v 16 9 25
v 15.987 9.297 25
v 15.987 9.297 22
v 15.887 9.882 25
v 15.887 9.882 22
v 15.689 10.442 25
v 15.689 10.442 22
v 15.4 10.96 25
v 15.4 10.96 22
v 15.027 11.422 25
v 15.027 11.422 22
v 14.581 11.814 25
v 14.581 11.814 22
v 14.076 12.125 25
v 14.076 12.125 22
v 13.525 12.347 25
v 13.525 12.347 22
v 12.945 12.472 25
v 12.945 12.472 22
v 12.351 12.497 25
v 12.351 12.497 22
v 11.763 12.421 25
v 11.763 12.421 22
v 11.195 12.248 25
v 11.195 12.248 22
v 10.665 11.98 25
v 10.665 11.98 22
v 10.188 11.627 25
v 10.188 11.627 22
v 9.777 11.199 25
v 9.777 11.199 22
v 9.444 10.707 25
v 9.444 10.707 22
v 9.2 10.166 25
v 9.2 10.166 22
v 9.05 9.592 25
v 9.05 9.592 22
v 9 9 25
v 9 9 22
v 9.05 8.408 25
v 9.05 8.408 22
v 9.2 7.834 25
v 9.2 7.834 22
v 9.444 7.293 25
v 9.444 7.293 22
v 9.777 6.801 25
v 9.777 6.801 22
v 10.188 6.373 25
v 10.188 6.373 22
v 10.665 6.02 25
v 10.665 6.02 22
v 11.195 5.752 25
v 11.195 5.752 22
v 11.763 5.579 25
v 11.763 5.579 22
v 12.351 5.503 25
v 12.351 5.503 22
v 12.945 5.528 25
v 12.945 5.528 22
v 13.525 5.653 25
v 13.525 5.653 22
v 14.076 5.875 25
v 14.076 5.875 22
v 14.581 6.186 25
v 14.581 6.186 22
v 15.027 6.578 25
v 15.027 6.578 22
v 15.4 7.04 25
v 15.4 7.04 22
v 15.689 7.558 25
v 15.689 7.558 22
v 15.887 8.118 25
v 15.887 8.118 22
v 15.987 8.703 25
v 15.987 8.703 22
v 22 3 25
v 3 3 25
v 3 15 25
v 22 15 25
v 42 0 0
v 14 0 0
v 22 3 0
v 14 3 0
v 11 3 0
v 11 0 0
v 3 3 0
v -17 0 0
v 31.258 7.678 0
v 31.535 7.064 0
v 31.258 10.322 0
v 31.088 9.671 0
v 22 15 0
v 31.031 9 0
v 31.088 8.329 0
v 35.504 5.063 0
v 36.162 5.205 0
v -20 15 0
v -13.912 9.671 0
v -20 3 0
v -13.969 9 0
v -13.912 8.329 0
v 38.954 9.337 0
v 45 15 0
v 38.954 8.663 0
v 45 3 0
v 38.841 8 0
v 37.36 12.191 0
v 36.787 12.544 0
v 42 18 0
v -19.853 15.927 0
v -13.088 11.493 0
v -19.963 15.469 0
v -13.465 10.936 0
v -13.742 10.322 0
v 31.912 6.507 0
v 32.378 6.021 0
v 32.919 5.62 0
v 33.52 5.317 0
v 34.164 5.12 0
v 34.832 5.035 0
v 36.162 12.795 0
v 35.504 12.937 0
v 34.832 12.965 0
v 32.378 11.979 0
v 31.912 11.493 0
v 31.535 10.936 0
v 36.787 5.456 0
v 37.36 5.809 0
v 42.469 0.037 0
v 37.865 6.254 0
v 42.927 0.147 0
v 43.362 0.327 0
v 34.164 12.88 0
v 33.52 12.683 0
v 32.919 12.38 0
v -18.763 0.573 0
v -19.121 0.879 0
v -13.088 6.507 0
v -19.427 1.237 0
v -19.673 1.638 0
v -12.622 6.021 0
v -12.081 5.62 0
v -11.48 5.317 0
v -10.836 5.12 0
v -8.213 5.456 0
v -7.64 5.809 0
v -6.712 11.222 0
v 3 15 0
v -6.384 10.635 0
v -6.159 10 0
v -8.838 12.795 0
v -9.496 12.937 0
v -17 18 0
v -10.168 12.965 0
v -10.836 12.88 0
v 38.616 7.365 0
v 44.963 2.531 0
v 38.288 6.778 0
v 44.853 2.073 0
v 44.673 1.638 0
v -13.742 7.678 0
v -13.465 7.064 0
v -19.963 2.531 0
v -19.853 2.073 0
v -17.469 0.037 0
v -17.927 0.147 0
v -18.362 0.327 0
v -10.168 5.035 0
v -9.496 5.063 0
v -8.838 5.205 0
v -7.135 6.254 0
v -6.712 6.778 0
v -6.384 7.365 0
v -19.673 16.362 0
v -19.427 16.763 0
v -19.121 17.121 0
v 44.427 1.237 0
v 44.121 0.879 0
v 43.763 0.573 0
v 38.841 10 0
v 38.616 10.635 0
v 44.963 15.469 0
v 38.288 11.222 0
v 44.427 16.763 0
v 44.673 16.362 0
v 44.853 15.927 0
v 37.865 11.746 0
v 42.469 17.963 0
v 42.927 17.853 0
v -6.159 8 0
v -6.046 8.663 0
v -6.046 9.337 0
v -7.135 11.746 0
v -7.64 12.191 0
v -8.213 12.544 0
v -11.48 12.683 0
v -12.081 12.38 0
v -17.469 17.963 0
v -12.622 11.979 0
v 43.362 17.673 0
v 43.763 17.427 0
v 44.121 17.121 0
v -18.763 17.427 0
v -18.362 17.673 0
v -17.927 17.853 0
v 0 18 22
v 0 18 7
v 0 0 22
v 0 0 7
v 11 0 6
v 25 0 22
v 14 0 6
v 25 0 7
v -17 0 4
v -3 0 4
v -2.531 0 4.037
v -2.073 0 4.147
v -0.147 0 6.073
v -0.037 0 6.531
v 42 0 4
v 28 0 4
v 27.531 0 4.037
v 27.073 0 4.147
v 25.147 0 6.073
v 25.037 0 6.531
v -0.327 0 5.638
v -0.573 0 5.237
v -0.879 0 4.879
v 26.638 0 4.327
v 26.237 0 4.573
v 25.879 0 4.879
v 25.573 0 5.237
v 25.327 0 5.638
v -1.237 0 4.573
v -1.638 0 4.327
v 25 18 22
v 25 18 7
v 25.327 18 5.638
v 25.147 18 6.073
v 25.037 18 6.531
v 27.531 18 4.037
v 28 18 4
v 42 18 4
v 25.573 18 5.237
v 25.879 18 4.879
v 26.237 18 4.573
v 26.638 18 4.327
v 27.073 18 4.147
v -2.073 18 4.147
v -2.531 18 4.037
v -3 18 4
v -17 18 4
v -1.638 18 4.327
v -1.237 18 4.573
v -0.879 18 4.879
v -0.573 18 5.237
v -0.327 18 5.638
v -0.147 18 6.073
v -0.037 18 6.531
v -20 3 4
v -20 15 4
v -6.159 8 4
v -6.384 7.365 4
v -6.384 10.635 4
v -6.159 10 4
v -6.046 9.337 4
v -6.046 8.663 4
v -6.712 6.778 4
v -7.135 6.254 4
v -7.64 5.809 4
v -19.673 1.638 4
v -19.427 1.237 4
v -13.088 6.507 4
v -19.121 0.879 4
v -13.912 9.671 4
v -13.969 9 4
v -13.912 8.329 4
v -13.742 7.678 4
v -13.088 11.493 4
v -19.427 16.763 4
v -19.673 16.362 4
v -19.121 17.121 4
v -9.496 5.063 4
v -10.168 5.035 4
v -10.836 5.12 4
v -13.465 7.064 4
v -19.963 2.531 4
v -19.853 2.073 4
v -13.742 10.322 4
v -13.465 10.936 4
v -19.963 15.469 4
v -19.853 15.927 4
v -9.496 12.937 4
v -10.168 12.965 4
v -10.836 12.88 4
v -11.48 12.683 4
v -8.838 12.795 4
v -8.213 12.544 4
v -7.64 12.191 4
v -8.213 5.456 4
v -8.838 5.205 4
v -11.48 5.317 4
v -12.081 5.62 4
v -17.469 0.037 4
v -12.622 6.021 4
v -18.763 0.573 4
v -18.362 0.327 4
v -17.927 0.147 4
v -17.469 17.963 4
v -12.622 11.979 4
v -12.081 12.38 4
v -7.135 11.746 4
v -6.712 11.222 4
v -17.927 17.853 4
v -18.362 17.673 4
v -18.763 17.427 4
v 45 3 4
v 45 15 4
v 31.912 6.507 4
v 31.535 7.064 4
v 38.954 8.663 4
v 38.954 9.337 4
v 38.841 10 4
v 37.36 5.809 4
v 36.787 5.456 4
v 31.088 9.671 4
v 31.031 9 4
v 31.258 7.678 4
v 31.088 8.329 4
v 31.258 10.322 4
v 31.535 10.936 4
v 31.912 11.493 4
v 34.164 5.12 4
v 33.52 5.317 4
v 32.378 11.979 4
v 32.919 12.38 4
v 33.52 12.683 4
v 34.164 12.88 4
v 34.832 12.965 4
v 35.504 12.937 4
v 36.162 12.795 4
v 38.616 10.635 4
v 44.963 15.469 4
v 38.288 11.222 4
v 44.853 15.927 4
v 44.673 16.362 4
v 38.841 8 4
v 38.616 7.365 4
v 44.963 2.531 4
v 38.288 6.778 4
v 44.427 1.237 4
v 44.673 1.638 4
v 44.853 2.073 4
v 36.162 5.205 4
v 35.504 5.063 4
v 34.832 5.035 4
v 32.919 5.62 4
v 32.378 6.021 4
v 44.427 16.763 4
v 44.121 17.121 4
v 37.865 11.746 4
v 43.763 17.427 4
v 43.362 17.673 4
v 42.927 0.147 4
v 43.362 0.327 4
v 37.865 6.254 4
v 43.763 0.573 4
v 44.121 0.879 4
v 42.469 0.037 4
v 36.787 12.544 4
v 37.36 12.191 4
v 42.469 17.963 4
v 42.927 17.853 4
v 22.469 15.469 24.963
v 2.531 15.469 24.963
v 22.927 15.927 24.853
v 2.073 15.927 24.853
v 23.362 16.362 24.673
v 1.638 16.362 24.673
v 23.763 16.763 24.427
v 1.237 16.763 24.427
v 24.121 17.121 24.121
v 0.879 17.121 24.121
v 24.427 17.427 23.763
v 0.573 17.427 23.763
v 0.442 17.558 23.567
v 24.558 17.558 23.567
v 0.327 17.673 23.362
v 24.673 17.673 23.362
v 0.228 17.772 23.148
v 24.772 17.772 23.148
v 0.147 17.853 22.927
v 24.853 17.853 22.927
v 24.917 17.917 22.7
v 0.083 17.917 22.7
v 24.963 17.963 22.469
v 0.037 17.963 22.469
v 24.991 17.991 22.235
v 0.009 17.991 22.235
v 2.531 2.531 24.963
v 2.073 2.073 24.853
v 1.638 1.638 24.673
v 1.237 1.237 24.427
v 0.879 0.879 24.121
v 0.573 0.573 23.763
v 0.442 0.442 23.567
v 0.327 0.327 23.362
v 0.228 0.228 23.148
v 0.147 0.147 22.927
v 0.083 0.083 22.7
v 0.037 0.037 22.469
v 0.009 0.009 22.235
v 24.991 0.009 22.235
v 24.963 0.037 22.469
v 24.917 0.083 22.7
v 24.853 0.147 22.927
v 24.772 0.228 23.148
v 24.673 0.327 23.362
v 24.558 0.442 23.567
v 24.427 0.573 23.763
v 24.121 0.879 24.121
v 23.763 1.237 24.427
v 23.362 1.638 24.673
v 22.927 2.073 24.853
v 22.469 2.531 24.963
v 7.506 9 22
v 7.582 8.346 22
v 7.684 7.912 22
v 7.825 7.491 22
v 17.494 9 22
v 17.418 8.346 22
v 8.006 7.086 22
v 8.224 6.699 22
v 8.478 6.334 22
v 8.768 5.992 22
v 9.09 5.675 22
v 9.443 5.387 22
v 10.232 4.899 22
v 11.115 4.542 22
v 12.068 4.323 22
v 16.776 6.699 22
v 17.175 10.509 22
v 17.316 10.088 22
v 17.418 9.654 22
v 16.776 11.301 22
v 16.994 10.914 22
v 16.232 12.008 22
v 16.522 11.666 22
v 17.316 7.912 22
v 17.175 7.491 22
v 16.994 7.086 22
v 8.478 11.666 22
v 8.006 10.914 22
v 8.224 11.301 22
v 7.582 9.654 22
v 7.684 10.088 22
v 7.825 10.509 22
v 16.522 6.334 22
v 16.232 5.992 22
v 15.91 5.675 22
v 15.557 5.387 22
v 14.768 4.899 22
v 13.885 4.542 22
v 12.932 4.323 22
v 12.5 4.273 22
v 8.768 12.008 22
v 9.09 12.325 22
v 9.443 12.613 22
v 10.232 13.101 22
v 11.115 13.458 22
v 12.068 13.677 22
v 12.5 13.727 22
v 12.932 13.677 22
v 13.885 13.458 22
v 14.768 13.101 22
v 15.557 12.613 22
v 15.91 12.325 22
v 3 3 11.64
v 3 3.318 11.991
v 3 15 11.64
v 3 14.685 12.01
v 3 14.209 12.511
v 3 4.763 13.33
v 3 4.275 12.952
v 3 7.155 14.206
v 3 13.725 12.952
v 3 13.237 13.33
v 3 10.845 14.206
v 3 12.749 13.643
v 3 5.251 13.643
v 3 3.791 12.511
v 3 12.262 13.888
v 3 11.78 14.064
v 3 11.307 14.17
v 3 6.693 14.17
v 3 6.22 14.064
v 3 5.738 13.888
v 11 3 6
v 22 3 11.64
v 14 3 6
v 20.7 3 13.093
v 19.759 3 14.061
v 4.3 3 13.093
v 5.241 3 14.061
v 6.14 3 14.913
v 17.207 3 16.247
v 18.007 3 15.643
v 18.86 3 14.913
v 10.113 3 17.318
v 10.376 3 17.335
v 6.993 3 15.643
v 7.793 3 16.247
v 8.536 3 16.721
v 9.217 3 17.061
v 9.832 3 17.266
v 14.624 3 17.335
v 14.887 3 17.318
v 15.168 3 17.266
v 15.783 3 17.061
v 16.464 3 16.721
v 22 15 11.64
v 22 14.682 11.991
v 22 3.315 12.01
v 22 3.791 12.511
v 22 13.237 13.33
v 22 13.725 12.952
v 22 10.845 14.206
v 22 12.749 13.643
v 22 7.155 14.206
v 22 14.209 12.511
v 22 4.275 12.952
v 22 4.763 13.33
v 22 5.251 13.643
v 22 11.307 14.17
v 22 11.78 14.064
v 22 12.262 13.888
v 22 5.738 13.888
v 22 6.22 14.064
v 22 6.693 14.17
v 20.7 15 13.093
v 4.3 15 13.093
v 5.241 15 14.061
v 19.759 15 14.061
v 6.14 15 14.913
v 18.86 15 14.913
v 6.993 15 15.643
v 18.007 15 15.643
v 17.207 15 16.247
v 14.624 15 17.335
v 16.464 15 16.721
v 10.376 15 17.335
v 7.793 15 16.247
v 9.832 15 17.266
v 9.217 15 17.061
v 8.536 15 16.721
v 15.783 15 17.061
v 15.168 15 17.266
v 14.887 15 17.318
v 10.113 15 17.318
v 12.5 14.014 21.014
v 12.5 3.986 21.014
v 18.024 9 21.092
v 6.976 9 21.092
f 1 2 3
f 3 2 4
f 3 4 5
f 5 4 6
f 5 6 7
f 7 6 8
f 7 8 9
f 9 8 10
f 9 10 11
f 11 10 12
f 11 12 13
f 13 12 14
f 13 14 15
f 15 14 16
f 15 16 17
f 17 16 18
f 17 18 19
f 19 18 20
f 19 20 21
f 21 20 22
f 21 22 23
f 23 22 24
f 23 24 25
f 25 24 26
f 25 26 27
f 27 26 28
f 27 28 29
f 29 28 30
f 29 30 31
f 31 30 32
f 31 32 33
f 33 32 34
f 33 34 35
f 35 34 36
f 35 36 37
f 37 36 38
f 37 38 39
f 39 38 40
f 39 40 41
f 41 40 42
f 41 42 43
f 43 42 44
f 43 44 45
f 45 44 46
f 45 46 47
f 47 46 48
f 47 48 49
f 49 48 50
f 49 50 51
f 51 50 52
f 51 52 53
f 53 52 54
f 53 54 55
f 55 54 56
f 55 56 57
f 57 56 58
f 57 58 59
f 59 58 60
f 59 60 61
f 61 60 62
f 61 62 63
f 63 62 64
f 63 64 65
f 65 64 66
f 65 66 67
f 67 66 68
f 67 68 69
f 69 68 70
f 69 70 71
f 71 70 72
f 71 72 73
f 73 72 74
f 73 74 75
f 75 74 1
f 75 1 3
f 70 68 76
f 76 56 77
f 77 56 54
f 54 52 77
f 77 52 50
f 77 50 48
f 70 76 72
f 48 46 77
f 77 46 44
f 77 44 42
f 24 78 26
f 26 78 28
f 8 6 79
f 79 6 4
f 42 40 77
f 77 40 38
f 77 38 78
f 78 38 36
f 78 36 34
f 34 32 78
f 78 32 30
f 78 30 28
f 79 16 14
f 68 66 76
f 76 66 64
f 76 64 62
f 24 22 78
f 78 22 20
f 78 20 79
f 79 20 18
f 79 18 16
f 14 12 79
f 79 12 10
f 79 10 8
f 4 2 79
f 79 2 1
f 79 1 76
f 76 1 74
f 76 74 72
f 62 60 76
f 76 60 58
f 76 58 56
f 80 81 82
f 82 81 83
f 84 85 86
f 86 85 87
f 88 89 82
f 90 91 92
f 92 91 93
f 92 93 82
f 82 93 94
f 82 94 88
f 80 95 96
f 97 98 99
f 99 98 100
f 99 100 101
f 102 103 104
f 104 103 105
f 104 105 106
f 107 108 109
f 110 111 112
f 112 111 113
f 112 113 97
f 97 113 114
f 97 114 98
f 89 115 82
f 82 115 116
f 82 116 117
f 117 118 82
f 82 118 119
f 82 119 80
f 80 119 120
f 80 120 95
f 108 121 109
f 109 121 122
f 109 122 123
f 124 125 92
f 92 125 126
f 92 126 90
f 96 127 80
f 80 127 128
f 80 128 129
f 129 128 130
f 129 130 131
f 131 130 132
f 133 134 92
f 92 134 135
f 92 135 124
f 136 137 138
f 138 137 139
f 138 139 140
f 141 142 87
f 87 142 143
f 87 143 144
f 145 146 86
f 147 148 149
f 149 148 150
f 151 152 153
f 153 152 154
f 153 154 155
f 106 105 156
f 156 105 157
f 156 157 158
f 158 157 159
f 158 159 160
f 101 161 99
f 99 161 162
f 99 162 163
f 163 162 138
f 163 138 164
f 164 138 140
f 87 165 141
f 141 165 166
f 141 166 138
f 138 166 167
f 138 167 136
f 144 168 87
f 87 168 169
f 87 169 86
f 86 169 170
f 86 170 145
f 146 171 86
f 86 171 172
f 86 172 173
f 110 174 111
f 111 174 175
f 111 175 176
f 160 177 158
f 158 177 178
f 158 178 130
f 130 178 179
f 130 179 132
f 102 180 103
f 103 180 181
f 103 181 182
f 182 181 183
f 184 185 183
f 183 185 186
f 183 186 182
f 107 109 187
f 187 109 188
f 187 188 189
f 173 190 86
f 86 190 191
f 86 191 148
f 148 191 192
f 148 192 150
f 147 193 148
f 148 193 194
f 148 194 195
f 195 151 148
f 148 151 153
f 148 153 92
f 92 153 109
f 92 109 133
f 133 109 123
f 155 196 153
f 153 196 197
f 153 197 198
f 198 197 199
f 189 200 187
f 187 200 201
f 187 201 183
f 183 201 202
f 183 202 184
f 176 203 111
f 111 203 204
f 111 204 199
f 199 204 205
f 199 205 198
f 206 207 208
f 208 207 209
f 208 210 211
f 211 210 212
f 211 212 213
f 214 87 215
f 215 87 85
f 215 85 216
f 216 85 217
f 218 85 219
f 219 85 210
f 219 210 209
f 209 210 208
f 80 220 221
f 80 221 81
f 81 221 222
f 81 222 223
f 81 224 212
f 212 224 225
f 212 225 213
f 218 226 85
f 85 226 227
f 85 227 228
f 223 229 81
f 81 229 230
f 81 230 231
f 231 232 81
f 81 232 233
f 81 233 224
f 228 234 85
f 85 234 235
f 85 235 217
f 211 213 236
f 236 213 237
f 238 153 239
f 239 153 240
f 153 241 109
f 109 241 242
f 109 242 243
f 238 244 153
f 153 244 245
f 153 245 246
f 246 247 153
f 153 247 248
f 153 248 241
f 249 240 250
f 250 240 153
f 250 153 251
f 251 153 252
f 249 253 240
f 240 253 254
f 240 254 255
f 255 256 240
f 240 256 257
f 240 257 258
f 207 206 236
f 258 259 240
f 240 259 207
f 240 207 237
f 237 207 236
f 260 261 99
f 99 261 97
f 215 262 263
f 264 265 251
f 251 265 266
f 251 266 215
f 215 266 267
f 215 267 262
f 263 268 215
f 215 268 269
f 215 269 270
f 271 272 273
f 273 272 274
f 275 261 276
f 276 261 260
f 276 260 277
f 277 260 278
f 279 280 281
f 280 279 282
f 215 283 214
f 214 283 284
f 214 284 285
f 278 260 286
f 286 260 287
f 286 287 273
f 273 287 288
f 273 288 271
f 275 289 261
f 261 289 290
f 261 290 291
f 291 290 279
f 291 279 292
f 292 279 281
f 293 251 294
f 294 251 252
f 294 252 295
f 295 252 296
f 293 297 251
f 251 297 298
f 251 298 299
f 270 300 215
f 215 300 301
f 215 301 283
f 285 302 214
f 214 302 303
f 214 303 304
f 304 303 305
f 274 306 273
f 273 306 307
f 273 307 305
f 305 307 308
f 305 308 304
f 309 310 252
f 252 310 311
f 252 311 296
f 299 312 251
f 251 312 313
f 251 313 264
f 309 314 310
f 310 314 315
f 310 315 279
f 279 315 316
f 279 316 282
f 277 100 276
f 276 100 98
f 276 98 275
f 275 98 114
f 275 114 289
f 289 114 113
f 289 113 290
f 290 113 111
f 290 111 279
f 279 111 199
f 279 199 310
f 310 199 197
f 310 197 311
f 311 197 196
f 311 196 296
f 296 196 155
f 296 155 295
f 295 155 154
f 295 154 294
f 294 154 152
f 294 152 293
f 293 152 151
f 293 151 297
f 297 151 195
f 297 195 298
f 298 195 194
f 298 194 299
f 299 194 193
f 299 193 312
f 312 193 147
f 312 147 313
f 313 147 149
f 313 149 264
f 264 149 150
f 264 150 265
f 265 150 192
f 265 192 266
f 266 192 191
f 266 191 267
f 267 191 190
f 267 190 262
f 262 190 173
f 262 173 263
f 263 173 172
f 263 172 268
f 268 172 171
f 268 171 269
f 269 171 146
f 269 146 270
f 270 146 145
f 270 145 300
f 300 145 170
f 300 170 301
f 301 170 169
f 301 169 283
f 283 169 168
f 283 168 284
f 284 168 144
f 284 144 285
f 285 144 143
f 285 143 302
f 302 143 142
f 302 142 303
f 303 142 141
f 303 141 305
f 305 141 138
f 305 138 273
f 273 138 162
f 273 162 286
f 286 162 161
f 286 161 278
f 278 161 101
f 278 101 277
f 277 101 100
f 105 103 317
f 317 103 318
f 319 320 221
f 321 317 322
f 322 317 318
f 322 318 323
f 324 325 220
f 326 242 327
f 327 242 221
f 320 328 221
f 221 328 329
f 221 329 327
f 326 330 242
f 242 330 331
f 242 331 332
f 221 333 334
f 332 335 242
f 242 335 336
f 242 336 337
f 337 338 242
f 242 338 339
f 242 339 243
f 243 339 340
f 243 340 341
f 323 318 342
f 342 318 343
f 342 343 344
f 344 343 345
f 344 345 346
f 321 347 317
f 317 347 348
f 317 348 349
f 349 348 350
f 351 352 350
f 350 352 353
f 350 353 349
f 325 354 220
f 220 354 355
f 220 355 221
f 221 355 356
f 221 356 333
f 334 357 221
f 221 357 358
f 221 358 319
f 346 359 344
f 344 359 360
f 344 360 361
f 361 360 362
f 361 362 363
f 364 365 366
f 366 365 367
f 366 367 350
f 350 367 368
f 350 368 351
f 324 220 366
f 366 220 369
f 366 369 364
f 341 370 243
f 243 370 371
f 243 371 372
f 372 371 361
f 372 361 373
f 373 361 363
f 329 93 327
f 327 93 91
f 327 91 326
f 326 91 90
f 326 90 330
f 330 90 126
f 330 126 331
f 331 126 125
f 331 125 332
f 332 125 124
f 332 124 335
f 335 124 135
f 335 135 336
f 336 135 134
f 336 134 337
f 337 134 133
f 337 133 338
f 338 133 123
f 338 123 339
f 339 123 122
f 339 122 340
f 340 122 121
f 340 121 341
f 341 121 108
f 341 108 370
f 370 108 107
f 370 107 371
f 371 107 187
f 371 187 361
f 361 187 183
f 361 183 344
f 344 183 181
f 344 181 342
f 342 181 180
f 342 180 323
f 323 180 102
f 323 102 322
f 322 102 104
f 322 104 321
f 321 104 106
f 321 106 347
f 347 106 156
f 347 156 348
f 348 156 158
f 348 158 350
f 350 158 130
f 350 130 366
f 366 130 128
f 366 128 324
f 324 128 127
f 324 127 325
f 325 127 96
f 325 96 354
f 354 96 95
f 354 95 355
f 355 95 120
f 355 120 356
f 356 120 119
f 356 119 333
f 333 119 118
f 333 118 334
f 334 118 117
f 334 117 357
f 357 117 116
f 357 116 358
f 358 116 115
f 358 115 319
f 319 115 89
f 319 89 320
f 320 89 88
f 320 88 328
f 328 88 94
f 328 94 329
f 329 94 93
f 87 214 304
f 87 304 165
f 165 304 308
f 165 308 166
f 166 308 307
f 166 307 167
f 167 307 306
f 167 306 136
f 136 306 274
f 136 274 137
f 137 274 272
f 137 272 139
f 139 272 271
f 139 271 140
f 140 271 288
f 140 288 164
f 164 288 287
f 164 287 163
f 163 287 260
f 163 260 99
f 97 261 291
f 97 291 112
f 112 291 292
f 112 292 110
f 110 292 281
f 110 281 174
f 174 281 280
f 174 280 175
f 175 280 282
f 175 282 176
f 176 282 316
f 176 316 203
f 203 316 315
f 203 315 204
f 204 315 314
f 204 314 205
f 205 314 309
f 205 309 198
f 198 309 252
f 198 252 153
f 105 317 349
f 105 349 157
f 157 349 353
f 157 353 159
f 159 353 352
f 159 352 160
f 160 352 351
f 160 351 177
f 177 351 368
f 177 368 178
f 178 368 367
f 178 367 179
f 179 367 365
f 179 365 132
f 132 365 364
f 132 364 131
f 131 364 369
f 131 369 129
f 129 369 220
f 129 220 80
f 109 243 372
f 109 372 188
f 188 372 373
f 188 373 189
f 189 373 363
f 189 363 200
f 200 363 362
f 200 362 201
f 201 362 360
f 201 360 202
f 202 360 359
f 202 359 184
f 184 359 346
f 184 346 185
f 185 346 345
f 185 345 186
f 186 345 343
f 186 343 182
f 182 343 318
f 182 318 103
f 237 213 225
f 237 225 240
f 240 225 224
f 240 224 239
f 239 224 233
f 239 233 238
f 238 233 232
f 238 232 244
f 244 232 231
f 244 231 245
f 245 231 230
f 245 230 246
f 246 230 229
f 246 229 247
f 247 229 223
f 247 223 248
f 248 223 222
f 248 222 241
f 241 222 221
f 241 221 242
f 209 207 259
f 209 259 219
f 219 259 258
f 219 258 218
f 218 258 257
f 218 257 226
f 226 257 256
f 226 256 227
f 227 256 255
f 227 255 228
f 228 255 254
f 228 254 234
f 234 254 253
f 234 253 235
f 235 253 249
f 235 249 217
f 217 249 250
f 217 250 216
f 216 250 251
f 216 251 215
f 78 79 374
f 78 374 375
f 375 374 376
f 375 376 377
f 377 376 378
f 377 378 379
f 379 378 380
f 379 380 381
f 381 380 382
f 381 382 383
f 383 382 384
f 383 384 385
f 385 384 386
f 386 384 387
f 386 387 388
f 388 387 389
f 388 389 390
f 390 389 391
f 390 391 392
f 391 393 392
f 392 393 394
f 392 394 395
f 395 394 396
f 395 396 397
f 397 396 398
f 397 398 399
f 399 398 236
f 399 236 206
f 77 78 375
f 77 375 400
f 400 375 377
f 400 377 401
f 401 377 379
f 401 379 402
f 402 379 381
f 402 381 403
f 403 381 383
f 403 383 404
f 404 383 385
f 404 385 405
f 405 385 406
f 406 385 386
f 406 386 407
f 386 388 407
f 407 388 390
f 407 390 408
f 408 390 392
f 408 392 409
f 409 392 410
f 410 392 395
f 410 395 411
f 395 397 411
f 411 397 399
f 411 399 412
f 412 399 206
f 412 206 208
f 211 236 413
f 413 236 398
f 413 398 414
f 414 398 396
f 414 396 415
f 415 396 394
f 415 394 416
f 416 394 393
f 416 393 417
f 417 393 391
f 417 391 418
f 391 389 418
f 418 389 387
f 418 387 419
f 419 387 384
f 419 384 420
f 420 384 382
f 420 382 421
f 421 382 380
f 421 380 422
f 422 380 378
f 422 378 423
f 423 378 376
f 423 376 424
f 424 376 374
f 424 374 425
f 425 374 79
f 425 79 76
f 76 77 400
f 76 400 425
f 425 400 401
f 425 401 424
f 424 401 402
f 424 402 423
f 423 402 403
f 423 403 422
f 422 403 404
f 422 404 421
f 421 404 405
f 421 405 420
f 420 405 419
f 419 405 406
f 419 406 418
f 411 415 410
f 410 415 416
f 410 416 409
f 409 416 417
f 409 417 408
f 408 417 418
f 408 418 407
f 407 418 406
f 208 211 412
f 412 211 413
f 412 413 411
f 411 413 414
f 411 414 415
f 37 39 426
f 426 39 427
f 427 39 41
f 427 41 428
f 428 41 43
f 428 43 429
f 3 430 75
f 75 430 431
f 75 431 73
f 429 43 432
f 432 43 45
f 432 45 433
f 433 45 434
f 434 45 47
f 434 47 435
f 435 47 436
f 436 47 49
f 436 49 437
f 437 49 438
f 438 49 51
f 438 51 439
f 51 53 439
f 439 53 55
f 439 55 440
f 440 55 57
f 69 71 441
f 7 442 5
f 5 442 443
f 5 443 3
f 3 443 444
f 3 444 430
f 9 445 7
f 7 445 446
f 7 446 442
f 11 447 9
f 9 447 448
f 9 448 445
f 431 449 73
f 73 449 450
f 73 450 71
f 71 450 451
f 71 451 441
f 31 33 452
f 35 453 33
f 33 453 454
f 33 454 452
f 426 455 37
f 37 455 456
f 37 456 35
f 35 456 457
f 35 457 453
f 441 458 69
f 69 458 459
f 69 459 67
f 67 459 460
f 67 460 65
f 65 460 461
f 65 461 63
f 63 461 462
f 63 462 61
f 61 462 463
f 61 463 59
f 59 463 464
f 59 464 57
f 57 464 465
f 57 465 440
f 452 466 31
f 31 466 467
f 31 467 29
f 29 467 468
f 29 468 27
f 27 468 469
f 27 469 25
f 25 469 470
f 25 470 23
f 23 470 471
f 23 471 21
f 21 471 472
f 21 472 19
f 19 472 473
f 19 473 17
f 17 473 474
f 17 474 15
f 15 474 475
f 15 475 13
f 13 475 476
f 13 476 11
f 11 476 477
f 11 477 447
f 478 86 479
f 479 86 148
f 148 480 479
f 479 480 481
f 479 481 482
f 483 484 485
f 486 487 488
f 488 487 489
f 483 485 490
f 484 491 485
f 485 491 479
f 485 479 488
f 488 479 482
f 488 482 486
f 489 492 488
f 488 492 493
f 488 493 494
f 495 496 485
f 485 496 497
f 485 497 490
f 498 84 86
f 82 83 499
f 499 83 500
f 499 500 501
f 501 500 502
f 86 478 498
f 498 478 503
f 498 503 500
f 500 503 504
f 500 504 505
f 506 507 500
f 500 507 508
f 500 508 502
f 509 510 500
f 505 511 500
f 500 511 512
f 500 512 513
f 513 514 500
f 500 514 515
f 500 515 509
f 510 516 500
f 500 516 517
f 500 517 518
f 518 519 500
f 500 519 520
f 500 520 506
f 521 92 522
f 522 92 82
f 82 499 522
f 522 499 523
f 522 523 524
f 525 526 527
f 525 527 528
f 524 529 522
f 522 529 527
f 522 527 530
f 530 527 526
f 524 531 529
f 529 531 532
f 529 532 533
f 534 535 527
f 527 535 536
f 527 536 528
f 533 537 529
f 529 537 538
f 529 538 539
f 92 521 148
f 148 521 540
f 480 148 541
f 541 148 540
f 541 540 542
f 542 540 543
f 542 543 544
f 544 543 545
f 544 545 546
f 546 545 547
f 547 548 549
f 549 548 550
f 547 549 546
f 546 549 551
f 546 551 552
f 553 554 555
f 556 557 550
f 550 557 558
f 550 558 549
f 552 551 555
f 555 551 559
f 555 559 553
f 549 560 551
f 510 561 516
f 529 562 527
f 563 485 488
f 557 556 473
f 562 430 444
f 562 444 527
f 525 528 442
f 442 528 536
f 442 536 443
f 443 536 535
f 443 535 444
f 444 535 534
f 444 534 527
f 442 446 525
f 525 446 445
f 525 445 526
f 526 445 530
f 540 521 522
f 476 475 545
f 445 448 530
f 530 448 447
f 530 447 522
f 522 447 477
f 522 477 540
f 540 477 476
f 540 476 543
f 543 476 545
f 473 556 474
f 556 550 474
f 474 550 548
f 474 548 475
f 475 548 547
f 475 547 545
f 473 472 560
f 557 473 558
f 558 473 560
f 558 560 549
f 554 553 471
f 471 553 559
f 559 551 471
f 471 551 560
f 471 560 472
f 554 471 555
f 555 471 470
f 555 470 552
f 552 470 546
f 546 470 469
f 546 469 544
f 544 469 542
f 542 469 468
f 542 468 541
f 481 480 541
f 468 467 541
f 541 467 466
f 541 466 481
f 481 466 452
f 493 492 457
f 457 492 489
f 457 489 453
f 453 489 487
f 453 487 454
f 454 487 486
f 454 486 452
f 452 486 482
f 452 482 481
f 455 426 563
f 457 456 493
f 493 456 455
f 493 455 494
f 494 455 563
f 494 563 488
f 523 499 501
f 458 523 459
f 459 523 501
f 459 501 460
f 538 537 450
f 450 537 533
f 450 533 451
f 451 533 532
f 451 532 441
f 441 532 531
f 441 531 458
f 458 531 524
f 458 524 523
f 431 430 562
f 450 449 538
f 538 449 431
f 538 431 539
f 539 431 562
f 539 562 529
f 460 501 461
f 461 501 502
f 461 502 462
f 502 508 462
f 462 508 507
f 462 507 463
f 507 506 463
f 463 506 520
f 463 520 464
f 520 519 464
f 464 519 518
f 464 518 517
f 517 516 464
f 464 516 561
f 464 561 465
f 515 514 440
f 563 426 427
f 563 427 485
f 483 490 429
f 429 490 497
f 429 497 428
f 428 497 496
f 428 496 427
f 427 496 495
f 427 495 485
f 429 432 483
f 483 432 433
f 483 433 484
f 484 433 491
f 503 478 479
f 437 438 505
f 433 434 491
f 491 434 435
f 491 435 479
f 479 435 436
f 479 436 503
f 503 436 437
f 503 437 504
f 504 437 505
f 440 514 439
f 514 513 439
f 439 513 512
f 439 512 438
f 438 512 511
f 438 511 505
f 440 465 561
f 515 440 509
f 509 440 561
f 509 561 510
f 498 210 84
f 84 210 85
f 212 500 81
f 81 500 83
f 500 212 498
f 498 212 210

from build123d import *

# Parameters (mm, degrees)
SKETCH1_W           = 25
SKETCH1_H           = 18
SKETCH1_R           = 3.5
BOSS_EXTRUDE1_DEPTH = 25
SKETCH2_W           = 20
SKETCH2_H           = 18
SKETCH2_R           = 3.96875
BOSS_EXTRUDE2_DEPTH = 4
FILLET2_R           = 3
FILLET4_R           = 3
SKETCH3_R           = 4.65
CUT_EXTRUDE1_DEPTH  = 22
SKETCH5_W           = 19
SKETCH5_H           = 12
CUT_EXTRUDE2_DEPTH  = 22
CHAMFER1_SIZE       = 1.25
CHAMFER1_SIZE2      = 4.665063509
CHAMFER2_SIZE       = 4.5
CHAMFER2_SIZE2      = 7.794228634
FILLET5_R           = 5.54
SKETCH7_W           = 3
SKETCH7_H           = 3
CUT_EXTRUDE3_DEPTH  = 6


with BuildPart() as part:
    # Sketch1 → Boss-Extrude1 (new body)
    with BuildSketch(Plane.XY):
        with Locations((12.5, 9)):
            Rectangle(SKETCH1_W, SKETCH1_H)
        with Locations((12.5, 9)):
            Circle(SKETCH1_R, mode=Mode.SUBTRACT)
    extrude(amount=BOSS_EXTRUDE1_DEPTH)

    # Sketch2 → Boss-Extrude2 (add)
    # profile 1 of 2: a face of its own
    with BuildSketch(Plane(origin=(0, 0, 0), x_dir=(-1, 0, 0), z_dir=(0, 0, -1))):
        with Locations((10, 9)):
            Rectangle(SKETCH2_W, SKETCH2_H)
        with Locations((10, 9)):
            Circle(SKETCH2_R, mode=Mode.SUBTRACT)
    # profile 2 of 2: a face of its own
    with BuildSketch(Plane(origin=(0, 0, 0), x_dir=(-1, 0, 0), z_dir=(0, 0, -1))):
        with Locations((-35, 9)):
            Rectangle(SKETCH2_W, SKETCH2_H)
        with Locations((-35, 9)):
            Circle(SKETCH2_R, mode=Mode.SUBTRACT)
    extrude(amount=-BOSS_EXTRUDE2_DEPTH)

    # Fillet2
    fillet2_edges = [part.edges().sort_by_distance(p)[0] for p in [
        (0, 9, 4),
        (-20, 0, 2),
        (-20, 18, 2),
        (45, 0, 2),
        (45, 18, 2),
        (25, 9, 4),
    ]]
    fillet(fillet2_edges, radius=FILLET2_R)

    # Fillet4
    fillet4_edges = [part.edges().sort_by_distance(p)[0] for p in [
        (12.5, 0, 25),
        (12.5, 18, 25),
        (0, 9, 25),
        (25, 9, 25),
    ]]
    fillet(fillet4_edges, radius=FILLET4_R)

    # Sketch3 → Cut-Extrude1 (cut)
    with BuildSketch(Plane(origin=(0, 0, 0), x_dir=(-1, 0, 0), z_dir=(0, 0, -1))):
        with Locations((-12.5, 9)):
            Circle(SKETCH3_R)
    extrude(amount=-CUT_EXTRUDE1_DEPTH, mode=Mode.SUBTRACT)

    # Sketch5 → Cut-Extrude2 (cut)
    with BuildSketch(Plane(origin=(0, 0, 0), x_dir=(-1, 0, 0), z_dir=(0, 0, -1))):
        with Locations((-12.5, 9)):
            Rectangle(SKETCH5_W, SKETCH5_H)
    extrude(amount=-CUT_EXTRUDE2_DEPTH, mode=Mode.SUBTRACT)

    # Chamfer1
    chamfer1_edges = [part.edges().sort_by_distance(p)[0] for p in [
        (12.5, 3, 22),
        (12.5, 15, 22),
    ]]
    chamfer1_side = [part.faces().sort_by_distance(p)[0] for p in [
        (12.5, 3.224722051, 22),
    ]]
    chamfer(chamfer1_edges, length=CHAMFER1_SIZE, length2=CHAMFER1_SIZE2, reference=chamfer1_side[0])

    # Chamfer2
    chamfer2_edges = [part.edges().sort_by_distance(p)[0] for p in [
        (22, 9, 22),
        (3, 9, 22),
    ]]
    chamfer2_side = [part.faces().sort_by_distance(p)[0] for p in [
        (21.787573542, 9, 22),
    ]]
    chamfer(chamfer2_edges, length=CHAMFER2_SIZE, length2=CHAMFER2_SIZE2, reference=chamfer2_side[0])

    # Fillet5
    # the kernel refuses this fillet: 5.54 mm, written as the material it adds along each edge
    with BuildSketch(Plane(origin=(13.422596023, 6.99868638, 32.258237225), x_dir=(-0.11302231218972587, 0.9741169476962979, -0.19576038710151827), z_dir=(-0.48705847384814693, -0.22604462437945333, -0.8436100229619524))) as fillet5_piece_1_section:
        with BuildLine():
            CenterArc((FILLET5_R * 0.877973148149, FILLET5_R), FILLET5_R, 187.435472226, 82.564527774)
            Line((-FILLET5_R * 0.113618085915, FILLET5_R * 0.870590477449), (0, 0))
            Line((0, 0), (FILLET5_R * 0.877973148149, 0))
        make_face()
    fillet5_piece_1 = extrude(amount=29.849737763, mode=Mode.PRIVATE)
    fillet5_piece_1 = split(fillet5_piece_1, bisect_by=Plane(origin=(6.414237593, 4.456810382, 22), z_dir=(0, 0, -1)), keep=Keep.TOP, mode=Mode.PRIVATE)
    fillet5_piece_1 = split(fillet5_piece_1, bisect_by=Plane(origin=(6.414237593, 0, 18.189685112), z_dir=(0, 1, 0)), keep=Keep.TOP, mode=Mode.PRIVATE)
    fillet5_piece_1 = split(fillet5_piece_1, bisect_by=Plane(origin=(0, 4.456810382, 18.189685112), z_dir=(1, 0, 0)), keep=Keep.TOP, mode=Mode.PRIVATE)
    add(fillet5_piece_1)
    with BuildSketch(Plane(origin=(11.577403977, 6.99868638, 32.258237225), x_dir=(-0.8733693623277119, -0.12606000911046675, -0.4704623588028643), z_dir=(0.48705847384814693, -0.2260446243794534, -0.8436100229619524))) as fillet5_piece_2_section:
        with BuildLine():
            CenterArc((FILLET5_R * 0.877973148149, FILLET5_R), FILLET5_R, 187.435472226, 82.564527774)
            Line((-FILLET5_R * 0.113618085915, FILLET5_R * 0.870590477449), (0, 0))
            Line((0, 0), (FILLET5_R * 0.877973148149, 0))
        make_face()
    fillet5_piece_2 = extrude(amount=29.849737763, mode=Mode.PRIVATE)
    fillet5_piece_2 = split(fillet5_piece_2, bisect_by=Plane(origin=(18.585762403, 4.456810384, 22), z_dir=(0, 0, -1)), keep=Keep.TOP, mode=Mode.PRIVATE)
    fillet5_piece_2 = split(fillet5_piece_2, bisect_by=Plane(origin=(18.585762403, 0, 18.189685124), z_dir=(0, 1, 0)), keep=Keep.TOP, mode=Mode.PRIVATE)
    fillet5_piece_2 = split(fillet5_piece_2, bisect_by=Plane(origin=(25, 4.456810384, 18.189685124), z_dir=(-1, 0, 0)), keep=Keep.TOP, mode=Mode.PRIVATE)
    add(fillet5_piece_2)
    with BuildSketch(Plane(origin=(11.577403977, 11.00131362, 32.258237225), x_dir=(0.11302231218972622, -0.9741169476962979, -0.19576038710151802), z_dir=(0.48705847384814693, 0.22604462437945327, -0.8436100229619524))) as fillet5_piece_3_section:
        with BuildLine():
            CenterArc((FILLET5_R * 0.877973148149, FILLET5_R), FILLET5_R, 187.435472226, 82.564527774)
            Line((-FILLET5_R * 0.113618085915, FILLET5_R * 0.870590477449), (0, 0))
            Line((0, 0), (FILLET5_R * 0.877973148149, 0))
        make_face()
    fillet5_piece_3 = extrude(amount=29.849737763, mode=Mode.PRIVATE)
    fillet5_piece_3 = split(fillet5_piece_3, bisect_by=Plane(origin=(18.585762407, 13.543189618, 22), z_dir=(0, 0, -1)), keep=Keep.TOP, mode=Mode.PRIVATE)
    fillet5_piece_3 = split(fillet5_piece_3, bisect_by=Plane(origin=(18.585762407, 18, 18.189685112), z_dir=(0, -1, 0)), keep=Keep.TOP, mode=Mode.PRIVATE)
    fillet5_piece_3 = split(fillet5_piece_3, bisect_by=Plane(origin=(25, 13.543189618, 18.189685112), z_dir=(-1, 0, 0)), keep=Keep.TOP, mode=Mode.PRIVATE)
    add(fillet5_piece_3)
    with BuildSketch(Plane(origin=(13.422596023, 11.00131362, 32.258237225), x_dir=(-0.11302231218972594, -0.9741169476962979, -0.1957603871015184), z_dir=(-0.4870584738481469, 0.22604462437945344, -0.8436100229619524))) as fillet5_piece_4_section:
        with BuildLine():
            CenterArc((FILLET5_R * 0.877973148149, -FILLET5_R), FILLET5_R, 90, 82.564527774)
            Line((-FILLET5_R * 0.113618085915, -FILLET5_R * 0.870590477449), (0, 0))
            Line((0, 0), (FILLET5_R * 0.877973148149, 0))
        make_face()
    fillet5_piece_4 = extrude(amount=29.849737763, mode=Mode.PRIVATE)
    fillet5_piece_4 = split(fillet5_piece_4, bisect_by=Plane(origin=(6.414237593, 13.543189618, 22), z_dir=(0, 0, -1)), keep=Keep.TOP, mode=Mode.PRIVATE)
    fillet5_piece_4 = split(fillet5_piece_4, bisect_by=Plane(origin=(6.414237593, 18, 18.189685112), z_dir=(0, -1, 0)), keep=Keep.TOP, mode=Mode.PRIVATE)
    fillet5_piece_4 = split(fillet5_piece_4, bisect_by=Plane(origin=(0, 13.543189618, 18.189685112), z_dir=(1, 0, 0)), keep=Keep.TOP, mode=Mode.PRIVATE)
    add(fillet5_piece_4)

    # Sketch7 → Cut-Extrude3 (cut)
    with BuildSketch(Plane(origin=(0, 0, 0), x_dir=(-1, 0, 0), z_dir=(0, 0, -1))):
        with Locations((-12.5, 1.5)):
            Rectangle(SKETCH7_W, SKETCH7_H)
    extrude(amount=-CUT_EXTRUDE3_DEPTH, mode=Mode.SUBTRACT)


solid = part.part
